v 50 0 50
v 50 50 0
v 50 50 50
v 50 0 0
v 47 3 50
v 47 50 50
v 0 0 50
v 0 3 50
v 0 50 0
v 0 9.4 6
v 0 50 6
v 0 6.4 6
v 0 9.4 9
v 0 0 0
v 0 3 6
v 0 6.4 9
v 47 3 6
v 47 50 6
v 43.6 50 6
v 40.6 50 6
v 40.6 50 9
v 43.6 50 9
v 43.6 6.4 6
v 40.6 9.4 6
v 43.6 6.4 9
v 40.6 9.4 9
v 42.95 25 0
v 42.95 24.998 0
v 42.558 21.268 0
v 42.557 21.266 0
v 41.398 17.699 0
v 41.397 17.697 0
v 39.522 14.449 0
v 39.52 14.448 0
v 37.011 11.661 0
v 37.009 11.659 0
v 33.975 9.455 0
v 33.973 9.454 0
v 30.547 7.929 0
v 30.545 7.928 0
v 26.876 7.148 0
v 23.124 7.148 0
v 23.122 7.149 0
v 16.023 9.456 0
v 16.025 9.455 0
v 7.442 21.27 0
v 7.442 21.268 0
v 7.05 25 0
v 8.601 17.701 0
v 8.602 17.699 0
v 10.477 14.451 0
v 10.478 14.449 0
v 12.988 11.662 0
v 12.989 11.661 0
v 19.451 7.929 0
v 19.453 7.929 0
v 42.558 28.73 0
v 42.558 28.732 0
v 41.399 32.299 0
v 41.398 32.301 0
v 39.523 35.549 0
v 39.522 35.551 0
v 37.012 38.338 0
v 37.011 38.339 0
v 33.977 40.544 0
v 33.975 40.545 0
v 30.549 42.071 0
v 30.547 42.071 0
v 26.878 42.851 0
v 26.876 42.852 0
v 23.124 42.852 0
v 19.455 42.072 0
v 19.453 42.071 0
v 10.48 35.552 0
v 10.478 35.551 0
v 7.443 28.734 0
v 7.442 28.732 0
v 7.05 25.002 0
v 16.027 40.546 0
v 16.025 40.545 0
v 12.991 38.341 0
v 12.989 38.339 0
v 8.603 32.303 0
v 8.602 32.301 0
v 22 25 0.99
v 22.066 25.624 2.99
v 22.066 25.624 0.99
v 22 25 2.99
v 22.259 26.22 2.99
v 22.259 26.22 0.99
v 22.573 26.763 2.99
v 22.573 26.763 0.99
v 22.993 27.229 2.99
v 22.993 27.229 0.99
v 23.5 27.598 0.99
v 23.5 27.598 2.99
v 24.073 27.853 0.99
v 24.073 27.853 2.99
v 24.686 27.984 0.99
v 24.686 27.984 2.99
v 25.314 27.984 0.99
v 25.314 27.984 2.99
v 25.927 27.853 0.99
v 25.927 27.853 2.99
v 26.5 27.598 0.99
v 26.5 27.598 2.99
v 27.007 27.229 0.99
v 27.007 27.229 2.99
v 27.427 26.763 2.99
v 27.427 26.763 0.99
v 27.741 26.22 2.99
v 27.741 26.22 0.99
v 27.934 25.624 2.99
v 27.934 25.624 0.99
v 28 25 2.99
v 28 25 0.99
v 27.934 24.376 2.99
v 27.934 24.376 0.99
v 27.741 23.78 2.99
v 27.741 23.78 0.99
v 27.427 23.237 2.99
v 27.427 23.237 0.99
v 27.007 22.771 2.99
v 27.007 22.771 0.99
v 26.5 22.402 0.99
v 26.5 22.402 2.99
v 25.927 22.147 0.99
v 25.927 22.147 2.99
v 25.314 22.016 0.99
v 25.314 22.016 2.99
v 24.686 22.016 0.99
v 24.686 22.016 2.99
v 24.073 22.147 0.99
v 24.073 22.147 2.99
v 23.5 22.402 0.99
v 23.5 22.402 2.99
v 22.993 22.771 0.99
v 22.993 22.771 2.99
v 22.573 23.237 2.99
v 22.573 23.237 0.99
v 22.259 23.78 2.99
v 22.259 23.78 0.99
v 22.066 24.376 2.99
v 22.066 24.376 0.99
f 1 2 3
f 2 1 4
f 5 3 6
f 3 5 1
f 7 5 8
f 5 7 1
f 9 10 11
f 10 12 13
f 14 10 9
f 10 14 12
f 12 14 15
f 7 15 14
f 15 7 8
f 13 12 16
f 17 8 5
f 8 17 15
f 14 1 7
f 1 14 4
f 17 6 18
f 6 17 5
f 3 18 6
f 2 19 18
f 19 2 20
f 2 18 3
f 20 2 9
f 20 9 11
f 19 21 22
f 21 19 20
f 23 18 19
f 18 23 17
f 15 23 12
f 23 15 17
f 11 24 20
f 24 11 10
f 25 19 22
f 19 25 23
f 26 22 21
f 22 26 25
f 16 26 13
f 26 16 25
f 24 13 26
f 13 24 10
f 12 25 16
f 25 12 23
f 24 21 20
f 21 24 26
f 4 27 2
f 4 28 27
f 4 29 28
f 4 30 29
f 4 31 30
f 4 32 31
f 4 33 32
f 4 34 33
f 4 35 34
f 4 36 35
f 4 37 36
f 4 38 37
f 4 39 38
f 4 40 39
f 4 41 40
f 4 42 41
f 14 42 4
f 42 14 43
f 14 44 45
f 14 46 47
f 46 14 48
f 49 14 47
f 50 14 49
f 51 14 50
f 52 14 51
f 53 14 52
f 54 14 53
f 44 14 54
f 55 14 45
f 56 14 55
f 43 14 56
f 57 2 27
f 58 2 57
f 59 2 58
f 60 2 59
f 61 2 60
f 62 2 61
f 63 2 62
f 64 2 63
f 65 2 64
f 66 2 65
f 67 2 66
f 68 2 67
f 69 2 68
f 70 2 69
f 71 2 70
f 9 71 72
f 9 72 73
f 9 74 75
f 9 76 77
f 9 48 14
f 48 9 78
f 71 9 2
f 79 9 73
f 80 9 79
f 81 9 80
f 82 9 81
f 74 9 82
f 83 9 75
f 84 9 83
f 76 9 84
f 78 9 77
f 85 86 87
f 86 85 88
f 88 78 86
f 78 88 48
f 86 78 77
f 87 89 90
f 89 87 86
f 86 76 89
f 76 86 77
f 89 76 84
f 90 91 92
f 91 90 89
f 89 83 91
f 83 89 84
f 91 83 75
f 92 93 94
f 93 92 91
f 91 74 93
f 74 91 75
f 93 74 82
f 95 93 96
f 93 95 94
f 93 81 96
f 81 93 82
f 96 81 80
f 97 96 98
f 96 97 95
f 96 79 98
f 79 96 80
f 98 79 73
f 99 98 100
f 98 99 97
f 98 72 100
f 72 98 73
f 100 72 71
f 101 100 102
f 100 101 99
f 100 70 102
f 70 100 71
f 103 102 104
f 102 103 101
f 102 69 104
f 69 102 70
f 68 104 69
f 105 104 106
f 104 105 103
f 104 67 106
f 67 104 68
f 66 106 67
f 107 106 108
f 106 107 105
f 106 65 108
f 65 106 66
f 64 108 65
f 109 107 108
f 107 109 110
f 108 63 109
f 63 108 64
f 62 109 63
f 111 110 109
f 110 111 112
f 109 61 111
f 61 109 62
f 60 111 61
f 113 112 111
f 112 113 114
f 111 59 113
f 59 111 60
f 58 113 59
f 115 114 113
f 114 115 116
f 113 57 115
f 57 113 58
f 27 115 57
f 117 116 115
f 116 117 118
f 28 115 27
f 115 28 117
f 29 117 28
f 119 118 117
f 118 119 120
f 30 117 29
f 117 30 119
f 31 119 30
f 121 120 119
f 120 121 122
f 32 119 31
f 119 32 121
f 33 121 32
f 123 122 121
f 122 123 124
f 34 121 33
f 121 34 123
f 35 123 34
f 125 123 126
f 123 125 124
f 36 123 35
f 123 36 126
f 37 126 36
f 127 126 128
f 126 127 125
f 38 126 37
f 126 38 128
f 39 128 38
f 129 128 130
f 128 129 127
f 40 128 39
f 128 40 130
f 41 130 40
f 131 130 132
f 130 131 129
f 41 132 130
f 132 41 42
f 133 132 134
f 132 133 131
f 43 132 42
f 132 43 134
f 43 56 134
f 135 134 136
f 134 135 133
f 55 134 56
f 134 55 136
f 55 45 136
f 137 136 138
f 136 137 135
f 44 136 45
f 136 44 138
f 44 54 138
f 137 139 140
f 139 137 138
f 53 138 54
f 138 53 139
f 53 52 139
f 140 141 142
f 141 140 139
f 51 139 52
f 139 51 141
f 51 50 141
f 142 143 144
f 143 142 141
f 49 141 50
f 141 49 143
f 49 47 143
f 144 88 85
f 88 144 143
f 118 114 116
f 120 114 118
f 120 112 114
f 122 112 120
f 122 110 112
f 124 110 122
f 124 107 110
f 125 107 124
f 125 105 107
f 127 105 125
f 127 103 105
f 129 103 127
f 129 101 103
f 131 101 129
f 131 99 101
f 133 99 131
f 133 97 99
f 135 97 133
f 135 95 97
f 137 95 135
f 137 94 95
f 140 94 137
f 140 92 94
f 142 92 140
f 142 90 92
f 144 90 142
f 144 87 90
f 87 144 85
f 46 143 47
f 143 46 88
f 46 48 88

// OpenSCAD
// file: enclosure_lib.scad
module SimpleCorner(wallWidth = 3,
                    totalWidth = 50,
                    totalHeight = 50,
                    totalDepth = 50,
                    gutterWidth = 3)
{
    // back wall
    cube([totalWidth,wallWidth,totalHeight]);
    // side wall
    translate([totalWidth,0,0])
        rotate([0,0,90])
            cube([totalDepth,wallWidth,totalHeight]);
    // base
    translate([0,totalDepth,0])
        rotate([90, 0, 0])
            cube([totalWidth,
                  wallWidth,
                  totalDepth]);
    // back gutter
    translate([0,
               wallWidth + gutterWidth,
               wallWidth * 2])
        rotate([0,90,0])
            cube([wallWidth, 
                  wallWidth, 
                  totalWidth - wallWidth - gutterWidth]);
    // side gutter
    translate([totalWidth - 2 * wallWidth - gutterWidth,
               totalDepth,
               wallWidth])
        rotate([90,0,0])
            cube([wallWidth, 
                  wallWidth, 
                  totalDepth - wallWidth - gutterWidth]);
    // gutter fill
    cube(3);
}
module Cone(holeRadius = 3)
{
    centerRadius    = 3;
    centerHeight    = 2;
    masterRadius    = 18;
    totalHeight     = 3;
    tanAlpha        = totalHeight / (masterRadius - centerRadius);
    holeHeight      = tanAlpha * (masterRadius - holeRadius);
    rotate_extrude()
        polygon(points=[
            [0, 0],
            [masterRadius, 0],
            [holeRadius, holeHeight],
            [holeRadius, 1],
            [0, 1]
        ]);
}
module Base(width = 50,
       depth = 50,
       halfHeight = 3)
{
    cube([width, depth, halfHeight]);
    translate([width / 2, depth / 2, halfHeight])
        Cone(3.5);
}

module BasedCorner(wallWidth = 3,
                   width = 50,
                   height = 50,
                   depth = 50,
                   gutterWidth = 3.4)
{
    translate([0, 0, wallWidth])
        union() {
            SimpleCorner(wallWidth, 
                         width, 
                         height - wallWidth, 
                         depth,
                         gutterWidth);
            translate([0,0, -wallWidth])
                difference() {
                    cube([width, depth, wallWidth]);
                    translate([width/2, depth/2, -.01])
                        Cone();
            }
        }
}

module top_profile(gutterWidth = 3) 
{
    polygon([
        [0, 0],
        [0, 9],
        [6, 9],
        [6, 6],
        [21,6],
        [21,3],
        [6 + gutterWidth, 3],
        [6 + gutterWidth, 0],
        [3 + gutterWidth, 0],
        [3 + gutterWidth, 3],
        [3, 3],
        [3, 0],
    ]);
}

import("/home/eugenio/repos/3dmodels/enclosure/leg_based_enclosure__.stl");
import("/home/eugenio/repos/3dmodels/enclosure/leg_based_enclosure__.stl");
// main file
use <enclosure_lib.scad>

wall_h = 3;
h=50;
d=50;
w=50;

BasedCorner(wall_h, w, h, d);
